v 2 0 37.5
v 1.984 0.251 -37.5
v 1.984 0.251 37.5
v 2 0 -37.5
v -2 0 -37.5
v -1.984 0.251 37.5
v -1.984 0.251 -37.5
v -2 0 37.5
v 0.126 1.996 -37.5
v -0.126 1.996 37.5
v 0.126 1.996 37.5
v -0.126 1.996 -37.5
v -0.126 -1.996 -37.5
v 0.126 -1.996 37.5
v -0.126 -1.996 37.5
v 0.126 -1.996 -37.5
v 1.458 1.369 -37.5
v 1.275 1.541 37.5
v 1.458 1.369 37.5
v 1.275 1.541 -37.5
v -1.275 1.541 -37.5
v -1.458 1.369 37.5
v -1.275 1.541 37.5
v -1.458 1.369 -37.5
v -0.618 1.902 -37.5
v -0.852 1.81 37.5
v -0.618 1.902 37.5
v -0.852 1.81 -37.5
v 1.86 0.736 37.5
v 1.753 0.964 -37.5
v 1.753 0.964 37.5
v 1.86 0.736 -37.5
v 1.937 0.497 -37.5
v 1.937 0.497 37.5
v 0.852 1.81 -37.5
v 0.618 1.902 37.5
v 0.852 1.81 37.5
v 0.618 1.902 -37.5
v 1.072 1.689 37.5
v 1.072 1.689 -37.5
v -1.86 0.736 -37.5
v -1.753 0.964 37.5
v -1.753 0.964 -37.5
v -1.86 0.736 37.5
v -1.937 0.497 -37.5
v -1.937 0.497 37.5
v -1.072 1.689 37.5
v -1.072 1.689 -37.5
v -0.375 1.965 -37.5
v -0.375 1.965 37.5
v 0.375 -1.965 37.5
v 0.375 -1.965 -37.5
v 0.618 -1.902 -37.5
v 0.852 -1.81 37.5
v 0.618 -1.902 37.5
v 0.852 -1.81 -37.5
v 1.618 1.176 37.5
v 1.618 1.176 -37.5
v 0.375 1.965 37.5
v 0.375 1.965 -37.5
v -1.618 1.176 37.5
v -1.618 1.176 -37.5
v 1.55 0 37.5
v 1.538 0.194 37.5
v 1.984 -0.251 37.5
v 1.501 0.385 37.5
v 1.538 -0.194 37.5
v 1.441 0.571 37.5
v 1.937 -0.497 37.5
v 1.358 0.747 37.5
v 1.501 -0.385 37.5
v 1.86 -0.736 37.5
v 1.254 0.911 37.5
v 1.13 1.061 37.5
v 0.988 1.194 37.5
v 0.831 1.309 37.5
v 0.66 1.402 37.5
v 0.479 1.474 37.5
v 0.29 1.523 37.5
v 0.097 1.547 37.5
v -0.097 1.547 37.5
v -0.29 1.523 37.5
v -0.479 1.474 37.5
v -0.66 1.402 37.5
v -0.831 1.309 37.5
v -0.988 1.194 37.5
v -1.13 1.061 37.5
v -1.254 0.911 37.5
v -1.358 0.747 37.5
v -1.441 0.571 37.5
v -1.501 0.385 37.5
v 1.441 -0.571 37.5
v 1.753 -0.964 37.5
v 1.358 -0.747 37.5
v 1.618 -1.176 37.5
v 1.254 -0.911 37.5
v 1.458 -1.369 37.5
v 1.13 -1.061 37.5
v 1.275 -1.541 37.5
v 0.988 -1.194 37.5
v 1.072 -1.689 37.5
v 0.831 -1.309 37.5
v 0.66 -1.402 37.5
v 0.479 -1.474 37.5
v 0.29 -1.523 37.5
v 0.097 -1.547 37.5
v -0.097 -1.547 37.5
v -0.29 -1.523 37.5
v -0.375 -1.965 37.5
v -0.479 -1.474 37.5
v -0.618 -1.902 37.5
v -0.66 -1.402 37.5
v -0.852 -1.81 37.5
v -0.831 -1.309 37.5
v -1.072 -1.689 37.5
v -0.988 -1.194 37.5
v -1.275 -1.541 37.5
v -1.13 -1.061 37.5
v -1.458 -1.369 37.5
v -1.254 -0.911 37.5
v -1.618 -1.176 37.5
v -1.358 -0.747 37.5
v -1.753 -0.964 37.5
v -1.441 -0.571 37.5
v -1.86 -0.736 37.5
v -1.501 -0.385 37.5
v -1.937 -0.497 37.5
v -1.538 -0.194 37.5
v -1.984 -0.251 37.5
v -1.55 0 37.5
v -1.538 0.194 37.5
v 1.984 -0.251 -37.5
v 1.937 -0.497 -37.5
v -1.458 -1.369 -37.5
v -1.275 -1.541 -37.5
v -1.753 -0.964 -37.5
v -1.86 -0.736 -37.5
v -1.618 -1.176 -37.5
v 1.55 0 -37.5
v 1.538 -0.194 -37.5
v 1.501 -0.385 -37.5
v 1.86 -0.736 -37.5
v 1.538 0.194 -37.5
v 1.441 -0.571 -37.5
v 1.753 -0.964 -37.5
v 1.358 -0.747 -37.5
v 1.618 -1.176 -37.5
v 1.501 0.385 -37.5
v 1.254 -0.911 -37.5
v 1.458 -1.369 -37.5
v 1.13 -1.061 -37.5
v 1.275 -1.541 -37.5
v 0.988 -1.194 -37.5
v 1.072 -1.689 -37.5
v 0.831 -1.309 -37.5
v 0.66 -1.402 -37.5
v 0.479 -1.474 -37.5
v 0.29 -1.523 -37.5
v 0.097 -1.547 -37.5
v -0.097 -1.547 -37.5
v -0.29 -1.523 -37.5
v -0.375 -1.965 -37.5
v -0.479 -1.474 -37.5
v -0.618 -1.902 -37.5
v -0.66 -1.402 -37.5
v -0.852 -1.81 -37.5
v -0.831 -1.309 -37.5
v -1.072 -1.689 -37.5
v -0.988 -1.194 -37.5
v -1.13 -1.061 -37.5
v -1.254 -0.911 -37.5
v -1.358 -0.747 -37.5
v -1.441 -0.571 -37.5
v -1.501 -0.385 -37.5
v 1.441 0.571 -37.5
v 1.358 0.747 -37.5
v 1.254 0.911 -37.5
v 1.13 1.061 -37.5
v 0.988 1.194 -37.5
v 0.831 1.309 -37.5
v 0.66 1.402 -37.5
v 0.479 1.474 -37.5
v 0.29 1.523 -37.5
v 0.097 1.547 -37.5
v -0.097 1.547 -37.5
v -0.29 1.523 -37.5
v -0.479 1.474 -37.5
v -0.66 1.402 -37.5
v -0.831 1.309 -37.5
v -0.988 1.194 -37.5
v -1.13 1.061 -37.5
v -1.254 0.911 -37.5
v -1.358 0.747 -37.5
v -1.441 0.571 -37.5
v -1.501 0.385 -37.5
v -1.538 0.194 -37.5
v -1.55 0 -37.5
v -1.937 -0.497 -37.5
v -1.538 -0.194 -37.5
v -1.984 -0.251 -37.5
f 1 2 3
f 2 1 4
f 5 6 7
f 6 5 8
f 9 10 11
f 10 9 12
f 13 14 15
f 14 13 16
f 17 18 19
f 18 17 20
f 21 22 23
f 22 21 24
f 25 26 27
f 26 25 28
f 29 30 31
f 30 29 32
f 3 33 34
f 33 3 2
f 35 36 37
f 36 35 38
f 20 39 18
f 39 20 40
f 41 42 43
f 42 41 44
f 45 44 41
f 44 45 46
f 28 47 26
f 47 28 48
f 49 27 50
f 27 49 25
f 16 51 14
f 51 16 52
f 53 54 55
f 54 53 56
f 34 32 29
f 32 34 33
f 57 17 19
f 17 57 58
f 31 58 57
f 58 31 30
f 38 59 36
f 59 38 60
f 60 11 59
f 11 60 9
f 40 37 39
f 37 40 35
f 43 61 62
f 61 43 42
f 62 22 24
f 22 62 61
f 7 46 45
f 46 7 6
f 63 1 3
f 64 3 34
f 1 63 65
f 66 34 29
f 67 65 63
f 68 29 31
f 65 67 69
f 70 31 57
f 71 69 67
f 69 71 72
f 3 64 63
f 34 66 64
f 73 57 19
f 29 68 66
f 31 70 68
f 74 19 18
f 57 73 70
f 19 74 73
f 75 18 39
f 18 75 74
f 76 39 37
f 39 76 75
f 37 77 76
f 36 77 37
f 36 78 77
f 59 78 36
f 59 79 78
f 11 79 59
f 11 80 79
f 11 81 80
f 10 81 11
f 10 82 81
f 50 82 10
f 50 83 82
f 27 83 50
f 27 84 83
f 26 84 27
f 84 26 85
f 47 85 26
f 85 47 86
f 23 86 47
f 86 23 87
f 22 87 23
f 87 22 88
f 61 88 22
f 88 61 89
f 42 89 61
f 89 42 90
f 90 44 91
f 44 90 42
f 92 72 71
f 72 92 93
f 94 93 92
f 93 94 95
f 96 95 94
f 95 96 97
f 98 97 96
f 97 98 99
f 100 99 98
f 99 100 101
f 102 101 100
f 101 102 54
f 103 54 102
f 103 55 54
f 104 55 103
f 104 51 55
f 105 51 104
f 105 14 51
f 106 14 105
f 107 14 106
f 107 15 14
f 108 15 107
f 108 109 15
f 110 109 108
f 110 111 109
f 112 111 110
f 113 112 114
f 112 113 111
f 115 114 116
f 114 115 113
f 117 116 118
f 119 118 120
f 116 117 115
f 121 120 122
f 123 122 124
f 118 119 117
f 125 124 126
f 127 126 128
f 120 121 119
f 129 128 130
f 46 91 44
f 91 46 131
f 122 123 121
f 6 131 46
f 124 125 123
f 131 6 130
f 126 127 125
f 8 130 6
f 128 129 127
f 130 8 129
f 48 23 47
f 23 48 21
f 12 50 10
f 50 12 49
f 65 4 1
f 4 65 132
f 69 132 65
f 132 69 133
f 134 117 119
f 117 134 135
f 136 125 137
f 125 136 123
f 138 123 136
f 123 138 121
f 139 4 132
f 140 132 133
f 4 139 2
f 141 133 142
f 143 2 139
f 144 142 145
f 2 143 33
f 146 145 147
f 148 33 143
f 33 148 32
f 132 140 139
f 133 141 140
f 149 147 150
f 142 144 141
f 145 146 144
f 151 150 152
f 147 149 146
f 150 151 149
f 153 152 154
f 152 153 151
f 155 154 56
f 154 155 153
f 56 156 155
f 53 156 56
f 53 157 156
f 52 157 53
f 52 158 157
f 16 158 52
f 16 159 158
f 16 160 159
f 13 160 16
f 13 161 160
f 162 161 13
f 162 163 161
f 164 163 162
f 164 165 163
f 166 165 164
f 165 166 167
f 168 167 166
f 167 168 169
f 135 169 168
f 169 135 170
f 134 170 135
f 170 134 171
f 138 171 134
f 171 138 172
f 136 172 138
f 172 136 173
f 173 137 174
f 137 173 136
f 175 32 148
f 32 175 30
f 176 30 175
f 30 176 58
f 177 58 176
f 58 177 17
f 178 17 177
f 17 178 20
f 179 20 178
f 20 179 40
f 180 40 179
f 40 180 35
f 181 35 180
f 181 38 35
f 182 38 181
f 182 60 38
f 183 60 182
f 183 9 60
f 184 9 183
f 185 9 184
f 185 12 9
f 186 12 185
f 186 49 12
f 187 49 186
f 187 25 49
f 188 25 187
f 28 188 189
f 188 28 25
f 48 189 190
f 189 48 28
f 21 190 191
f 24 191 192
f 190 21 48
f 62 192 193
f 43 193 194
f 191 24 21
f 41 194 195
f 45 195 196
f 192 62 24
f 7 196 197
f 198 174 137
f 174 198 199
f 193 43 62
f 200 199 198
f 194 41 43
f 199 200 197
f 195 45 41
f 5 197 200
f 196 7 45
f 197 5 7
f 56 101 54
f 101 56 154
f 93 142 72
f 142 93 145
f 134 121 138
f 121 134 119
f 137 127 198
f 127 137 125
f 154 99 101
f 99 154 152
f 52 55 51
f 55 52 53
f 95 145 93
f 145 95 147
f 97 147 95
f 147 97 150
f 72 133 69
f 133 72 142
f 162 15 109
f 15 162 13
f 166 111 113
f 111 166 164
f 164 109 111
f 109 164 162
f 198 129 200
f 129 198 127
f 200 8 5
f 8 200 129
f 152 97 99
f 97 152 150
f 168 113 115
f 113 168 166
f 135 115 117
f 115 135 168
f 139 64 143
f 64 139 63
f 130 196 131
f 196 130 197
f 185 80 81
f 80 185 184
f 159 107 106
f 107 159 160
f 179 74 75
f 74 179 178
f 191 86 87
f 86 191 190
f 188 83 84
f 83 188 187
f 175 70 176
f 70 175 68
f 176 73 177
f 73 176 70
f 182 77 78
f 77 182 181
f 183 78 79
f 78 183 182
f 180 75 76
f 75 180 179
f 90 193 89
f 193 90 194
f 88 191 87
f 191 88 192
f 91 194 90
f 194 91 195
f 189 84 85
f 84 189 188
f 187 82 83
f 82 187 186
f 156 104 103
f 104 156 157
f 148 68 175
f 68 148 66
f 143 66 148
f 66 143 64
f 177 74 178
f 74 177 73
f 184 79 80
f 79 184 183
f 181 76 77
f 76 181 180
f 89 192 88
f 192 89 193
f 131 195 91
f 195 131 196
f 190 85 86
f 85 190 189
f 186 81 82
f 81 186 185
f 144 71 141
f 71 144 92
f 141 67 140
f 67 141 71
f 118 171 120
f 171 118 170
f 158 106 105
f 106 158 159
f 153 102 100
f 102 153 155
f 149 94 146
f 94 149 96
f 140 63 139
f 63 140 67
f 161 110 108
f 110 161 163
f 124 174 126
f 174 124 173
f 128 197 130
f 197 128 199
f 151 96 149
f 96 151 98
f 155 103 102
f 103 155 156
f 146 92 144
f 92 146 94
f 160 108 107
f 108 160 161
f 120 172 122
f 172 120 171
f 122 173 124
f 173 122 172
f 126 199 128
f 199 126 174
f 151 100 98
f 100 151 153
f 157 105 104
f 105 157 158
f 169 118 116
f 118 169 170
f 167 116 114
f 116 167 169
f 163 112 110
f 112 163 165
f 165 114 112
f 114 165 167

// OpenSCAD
$fn = 50;


difference() {
	union() {
		translate(v = [0, 0, -37.5000000000]) {
			cylinder(h = 75, r = 2.0000000000);
		}
	}
	union() {
		translate(v = [0, 0, -100.0000000000]) {
			cylinder(h = 200, r = 1.5500000000);
		}
	}
}
